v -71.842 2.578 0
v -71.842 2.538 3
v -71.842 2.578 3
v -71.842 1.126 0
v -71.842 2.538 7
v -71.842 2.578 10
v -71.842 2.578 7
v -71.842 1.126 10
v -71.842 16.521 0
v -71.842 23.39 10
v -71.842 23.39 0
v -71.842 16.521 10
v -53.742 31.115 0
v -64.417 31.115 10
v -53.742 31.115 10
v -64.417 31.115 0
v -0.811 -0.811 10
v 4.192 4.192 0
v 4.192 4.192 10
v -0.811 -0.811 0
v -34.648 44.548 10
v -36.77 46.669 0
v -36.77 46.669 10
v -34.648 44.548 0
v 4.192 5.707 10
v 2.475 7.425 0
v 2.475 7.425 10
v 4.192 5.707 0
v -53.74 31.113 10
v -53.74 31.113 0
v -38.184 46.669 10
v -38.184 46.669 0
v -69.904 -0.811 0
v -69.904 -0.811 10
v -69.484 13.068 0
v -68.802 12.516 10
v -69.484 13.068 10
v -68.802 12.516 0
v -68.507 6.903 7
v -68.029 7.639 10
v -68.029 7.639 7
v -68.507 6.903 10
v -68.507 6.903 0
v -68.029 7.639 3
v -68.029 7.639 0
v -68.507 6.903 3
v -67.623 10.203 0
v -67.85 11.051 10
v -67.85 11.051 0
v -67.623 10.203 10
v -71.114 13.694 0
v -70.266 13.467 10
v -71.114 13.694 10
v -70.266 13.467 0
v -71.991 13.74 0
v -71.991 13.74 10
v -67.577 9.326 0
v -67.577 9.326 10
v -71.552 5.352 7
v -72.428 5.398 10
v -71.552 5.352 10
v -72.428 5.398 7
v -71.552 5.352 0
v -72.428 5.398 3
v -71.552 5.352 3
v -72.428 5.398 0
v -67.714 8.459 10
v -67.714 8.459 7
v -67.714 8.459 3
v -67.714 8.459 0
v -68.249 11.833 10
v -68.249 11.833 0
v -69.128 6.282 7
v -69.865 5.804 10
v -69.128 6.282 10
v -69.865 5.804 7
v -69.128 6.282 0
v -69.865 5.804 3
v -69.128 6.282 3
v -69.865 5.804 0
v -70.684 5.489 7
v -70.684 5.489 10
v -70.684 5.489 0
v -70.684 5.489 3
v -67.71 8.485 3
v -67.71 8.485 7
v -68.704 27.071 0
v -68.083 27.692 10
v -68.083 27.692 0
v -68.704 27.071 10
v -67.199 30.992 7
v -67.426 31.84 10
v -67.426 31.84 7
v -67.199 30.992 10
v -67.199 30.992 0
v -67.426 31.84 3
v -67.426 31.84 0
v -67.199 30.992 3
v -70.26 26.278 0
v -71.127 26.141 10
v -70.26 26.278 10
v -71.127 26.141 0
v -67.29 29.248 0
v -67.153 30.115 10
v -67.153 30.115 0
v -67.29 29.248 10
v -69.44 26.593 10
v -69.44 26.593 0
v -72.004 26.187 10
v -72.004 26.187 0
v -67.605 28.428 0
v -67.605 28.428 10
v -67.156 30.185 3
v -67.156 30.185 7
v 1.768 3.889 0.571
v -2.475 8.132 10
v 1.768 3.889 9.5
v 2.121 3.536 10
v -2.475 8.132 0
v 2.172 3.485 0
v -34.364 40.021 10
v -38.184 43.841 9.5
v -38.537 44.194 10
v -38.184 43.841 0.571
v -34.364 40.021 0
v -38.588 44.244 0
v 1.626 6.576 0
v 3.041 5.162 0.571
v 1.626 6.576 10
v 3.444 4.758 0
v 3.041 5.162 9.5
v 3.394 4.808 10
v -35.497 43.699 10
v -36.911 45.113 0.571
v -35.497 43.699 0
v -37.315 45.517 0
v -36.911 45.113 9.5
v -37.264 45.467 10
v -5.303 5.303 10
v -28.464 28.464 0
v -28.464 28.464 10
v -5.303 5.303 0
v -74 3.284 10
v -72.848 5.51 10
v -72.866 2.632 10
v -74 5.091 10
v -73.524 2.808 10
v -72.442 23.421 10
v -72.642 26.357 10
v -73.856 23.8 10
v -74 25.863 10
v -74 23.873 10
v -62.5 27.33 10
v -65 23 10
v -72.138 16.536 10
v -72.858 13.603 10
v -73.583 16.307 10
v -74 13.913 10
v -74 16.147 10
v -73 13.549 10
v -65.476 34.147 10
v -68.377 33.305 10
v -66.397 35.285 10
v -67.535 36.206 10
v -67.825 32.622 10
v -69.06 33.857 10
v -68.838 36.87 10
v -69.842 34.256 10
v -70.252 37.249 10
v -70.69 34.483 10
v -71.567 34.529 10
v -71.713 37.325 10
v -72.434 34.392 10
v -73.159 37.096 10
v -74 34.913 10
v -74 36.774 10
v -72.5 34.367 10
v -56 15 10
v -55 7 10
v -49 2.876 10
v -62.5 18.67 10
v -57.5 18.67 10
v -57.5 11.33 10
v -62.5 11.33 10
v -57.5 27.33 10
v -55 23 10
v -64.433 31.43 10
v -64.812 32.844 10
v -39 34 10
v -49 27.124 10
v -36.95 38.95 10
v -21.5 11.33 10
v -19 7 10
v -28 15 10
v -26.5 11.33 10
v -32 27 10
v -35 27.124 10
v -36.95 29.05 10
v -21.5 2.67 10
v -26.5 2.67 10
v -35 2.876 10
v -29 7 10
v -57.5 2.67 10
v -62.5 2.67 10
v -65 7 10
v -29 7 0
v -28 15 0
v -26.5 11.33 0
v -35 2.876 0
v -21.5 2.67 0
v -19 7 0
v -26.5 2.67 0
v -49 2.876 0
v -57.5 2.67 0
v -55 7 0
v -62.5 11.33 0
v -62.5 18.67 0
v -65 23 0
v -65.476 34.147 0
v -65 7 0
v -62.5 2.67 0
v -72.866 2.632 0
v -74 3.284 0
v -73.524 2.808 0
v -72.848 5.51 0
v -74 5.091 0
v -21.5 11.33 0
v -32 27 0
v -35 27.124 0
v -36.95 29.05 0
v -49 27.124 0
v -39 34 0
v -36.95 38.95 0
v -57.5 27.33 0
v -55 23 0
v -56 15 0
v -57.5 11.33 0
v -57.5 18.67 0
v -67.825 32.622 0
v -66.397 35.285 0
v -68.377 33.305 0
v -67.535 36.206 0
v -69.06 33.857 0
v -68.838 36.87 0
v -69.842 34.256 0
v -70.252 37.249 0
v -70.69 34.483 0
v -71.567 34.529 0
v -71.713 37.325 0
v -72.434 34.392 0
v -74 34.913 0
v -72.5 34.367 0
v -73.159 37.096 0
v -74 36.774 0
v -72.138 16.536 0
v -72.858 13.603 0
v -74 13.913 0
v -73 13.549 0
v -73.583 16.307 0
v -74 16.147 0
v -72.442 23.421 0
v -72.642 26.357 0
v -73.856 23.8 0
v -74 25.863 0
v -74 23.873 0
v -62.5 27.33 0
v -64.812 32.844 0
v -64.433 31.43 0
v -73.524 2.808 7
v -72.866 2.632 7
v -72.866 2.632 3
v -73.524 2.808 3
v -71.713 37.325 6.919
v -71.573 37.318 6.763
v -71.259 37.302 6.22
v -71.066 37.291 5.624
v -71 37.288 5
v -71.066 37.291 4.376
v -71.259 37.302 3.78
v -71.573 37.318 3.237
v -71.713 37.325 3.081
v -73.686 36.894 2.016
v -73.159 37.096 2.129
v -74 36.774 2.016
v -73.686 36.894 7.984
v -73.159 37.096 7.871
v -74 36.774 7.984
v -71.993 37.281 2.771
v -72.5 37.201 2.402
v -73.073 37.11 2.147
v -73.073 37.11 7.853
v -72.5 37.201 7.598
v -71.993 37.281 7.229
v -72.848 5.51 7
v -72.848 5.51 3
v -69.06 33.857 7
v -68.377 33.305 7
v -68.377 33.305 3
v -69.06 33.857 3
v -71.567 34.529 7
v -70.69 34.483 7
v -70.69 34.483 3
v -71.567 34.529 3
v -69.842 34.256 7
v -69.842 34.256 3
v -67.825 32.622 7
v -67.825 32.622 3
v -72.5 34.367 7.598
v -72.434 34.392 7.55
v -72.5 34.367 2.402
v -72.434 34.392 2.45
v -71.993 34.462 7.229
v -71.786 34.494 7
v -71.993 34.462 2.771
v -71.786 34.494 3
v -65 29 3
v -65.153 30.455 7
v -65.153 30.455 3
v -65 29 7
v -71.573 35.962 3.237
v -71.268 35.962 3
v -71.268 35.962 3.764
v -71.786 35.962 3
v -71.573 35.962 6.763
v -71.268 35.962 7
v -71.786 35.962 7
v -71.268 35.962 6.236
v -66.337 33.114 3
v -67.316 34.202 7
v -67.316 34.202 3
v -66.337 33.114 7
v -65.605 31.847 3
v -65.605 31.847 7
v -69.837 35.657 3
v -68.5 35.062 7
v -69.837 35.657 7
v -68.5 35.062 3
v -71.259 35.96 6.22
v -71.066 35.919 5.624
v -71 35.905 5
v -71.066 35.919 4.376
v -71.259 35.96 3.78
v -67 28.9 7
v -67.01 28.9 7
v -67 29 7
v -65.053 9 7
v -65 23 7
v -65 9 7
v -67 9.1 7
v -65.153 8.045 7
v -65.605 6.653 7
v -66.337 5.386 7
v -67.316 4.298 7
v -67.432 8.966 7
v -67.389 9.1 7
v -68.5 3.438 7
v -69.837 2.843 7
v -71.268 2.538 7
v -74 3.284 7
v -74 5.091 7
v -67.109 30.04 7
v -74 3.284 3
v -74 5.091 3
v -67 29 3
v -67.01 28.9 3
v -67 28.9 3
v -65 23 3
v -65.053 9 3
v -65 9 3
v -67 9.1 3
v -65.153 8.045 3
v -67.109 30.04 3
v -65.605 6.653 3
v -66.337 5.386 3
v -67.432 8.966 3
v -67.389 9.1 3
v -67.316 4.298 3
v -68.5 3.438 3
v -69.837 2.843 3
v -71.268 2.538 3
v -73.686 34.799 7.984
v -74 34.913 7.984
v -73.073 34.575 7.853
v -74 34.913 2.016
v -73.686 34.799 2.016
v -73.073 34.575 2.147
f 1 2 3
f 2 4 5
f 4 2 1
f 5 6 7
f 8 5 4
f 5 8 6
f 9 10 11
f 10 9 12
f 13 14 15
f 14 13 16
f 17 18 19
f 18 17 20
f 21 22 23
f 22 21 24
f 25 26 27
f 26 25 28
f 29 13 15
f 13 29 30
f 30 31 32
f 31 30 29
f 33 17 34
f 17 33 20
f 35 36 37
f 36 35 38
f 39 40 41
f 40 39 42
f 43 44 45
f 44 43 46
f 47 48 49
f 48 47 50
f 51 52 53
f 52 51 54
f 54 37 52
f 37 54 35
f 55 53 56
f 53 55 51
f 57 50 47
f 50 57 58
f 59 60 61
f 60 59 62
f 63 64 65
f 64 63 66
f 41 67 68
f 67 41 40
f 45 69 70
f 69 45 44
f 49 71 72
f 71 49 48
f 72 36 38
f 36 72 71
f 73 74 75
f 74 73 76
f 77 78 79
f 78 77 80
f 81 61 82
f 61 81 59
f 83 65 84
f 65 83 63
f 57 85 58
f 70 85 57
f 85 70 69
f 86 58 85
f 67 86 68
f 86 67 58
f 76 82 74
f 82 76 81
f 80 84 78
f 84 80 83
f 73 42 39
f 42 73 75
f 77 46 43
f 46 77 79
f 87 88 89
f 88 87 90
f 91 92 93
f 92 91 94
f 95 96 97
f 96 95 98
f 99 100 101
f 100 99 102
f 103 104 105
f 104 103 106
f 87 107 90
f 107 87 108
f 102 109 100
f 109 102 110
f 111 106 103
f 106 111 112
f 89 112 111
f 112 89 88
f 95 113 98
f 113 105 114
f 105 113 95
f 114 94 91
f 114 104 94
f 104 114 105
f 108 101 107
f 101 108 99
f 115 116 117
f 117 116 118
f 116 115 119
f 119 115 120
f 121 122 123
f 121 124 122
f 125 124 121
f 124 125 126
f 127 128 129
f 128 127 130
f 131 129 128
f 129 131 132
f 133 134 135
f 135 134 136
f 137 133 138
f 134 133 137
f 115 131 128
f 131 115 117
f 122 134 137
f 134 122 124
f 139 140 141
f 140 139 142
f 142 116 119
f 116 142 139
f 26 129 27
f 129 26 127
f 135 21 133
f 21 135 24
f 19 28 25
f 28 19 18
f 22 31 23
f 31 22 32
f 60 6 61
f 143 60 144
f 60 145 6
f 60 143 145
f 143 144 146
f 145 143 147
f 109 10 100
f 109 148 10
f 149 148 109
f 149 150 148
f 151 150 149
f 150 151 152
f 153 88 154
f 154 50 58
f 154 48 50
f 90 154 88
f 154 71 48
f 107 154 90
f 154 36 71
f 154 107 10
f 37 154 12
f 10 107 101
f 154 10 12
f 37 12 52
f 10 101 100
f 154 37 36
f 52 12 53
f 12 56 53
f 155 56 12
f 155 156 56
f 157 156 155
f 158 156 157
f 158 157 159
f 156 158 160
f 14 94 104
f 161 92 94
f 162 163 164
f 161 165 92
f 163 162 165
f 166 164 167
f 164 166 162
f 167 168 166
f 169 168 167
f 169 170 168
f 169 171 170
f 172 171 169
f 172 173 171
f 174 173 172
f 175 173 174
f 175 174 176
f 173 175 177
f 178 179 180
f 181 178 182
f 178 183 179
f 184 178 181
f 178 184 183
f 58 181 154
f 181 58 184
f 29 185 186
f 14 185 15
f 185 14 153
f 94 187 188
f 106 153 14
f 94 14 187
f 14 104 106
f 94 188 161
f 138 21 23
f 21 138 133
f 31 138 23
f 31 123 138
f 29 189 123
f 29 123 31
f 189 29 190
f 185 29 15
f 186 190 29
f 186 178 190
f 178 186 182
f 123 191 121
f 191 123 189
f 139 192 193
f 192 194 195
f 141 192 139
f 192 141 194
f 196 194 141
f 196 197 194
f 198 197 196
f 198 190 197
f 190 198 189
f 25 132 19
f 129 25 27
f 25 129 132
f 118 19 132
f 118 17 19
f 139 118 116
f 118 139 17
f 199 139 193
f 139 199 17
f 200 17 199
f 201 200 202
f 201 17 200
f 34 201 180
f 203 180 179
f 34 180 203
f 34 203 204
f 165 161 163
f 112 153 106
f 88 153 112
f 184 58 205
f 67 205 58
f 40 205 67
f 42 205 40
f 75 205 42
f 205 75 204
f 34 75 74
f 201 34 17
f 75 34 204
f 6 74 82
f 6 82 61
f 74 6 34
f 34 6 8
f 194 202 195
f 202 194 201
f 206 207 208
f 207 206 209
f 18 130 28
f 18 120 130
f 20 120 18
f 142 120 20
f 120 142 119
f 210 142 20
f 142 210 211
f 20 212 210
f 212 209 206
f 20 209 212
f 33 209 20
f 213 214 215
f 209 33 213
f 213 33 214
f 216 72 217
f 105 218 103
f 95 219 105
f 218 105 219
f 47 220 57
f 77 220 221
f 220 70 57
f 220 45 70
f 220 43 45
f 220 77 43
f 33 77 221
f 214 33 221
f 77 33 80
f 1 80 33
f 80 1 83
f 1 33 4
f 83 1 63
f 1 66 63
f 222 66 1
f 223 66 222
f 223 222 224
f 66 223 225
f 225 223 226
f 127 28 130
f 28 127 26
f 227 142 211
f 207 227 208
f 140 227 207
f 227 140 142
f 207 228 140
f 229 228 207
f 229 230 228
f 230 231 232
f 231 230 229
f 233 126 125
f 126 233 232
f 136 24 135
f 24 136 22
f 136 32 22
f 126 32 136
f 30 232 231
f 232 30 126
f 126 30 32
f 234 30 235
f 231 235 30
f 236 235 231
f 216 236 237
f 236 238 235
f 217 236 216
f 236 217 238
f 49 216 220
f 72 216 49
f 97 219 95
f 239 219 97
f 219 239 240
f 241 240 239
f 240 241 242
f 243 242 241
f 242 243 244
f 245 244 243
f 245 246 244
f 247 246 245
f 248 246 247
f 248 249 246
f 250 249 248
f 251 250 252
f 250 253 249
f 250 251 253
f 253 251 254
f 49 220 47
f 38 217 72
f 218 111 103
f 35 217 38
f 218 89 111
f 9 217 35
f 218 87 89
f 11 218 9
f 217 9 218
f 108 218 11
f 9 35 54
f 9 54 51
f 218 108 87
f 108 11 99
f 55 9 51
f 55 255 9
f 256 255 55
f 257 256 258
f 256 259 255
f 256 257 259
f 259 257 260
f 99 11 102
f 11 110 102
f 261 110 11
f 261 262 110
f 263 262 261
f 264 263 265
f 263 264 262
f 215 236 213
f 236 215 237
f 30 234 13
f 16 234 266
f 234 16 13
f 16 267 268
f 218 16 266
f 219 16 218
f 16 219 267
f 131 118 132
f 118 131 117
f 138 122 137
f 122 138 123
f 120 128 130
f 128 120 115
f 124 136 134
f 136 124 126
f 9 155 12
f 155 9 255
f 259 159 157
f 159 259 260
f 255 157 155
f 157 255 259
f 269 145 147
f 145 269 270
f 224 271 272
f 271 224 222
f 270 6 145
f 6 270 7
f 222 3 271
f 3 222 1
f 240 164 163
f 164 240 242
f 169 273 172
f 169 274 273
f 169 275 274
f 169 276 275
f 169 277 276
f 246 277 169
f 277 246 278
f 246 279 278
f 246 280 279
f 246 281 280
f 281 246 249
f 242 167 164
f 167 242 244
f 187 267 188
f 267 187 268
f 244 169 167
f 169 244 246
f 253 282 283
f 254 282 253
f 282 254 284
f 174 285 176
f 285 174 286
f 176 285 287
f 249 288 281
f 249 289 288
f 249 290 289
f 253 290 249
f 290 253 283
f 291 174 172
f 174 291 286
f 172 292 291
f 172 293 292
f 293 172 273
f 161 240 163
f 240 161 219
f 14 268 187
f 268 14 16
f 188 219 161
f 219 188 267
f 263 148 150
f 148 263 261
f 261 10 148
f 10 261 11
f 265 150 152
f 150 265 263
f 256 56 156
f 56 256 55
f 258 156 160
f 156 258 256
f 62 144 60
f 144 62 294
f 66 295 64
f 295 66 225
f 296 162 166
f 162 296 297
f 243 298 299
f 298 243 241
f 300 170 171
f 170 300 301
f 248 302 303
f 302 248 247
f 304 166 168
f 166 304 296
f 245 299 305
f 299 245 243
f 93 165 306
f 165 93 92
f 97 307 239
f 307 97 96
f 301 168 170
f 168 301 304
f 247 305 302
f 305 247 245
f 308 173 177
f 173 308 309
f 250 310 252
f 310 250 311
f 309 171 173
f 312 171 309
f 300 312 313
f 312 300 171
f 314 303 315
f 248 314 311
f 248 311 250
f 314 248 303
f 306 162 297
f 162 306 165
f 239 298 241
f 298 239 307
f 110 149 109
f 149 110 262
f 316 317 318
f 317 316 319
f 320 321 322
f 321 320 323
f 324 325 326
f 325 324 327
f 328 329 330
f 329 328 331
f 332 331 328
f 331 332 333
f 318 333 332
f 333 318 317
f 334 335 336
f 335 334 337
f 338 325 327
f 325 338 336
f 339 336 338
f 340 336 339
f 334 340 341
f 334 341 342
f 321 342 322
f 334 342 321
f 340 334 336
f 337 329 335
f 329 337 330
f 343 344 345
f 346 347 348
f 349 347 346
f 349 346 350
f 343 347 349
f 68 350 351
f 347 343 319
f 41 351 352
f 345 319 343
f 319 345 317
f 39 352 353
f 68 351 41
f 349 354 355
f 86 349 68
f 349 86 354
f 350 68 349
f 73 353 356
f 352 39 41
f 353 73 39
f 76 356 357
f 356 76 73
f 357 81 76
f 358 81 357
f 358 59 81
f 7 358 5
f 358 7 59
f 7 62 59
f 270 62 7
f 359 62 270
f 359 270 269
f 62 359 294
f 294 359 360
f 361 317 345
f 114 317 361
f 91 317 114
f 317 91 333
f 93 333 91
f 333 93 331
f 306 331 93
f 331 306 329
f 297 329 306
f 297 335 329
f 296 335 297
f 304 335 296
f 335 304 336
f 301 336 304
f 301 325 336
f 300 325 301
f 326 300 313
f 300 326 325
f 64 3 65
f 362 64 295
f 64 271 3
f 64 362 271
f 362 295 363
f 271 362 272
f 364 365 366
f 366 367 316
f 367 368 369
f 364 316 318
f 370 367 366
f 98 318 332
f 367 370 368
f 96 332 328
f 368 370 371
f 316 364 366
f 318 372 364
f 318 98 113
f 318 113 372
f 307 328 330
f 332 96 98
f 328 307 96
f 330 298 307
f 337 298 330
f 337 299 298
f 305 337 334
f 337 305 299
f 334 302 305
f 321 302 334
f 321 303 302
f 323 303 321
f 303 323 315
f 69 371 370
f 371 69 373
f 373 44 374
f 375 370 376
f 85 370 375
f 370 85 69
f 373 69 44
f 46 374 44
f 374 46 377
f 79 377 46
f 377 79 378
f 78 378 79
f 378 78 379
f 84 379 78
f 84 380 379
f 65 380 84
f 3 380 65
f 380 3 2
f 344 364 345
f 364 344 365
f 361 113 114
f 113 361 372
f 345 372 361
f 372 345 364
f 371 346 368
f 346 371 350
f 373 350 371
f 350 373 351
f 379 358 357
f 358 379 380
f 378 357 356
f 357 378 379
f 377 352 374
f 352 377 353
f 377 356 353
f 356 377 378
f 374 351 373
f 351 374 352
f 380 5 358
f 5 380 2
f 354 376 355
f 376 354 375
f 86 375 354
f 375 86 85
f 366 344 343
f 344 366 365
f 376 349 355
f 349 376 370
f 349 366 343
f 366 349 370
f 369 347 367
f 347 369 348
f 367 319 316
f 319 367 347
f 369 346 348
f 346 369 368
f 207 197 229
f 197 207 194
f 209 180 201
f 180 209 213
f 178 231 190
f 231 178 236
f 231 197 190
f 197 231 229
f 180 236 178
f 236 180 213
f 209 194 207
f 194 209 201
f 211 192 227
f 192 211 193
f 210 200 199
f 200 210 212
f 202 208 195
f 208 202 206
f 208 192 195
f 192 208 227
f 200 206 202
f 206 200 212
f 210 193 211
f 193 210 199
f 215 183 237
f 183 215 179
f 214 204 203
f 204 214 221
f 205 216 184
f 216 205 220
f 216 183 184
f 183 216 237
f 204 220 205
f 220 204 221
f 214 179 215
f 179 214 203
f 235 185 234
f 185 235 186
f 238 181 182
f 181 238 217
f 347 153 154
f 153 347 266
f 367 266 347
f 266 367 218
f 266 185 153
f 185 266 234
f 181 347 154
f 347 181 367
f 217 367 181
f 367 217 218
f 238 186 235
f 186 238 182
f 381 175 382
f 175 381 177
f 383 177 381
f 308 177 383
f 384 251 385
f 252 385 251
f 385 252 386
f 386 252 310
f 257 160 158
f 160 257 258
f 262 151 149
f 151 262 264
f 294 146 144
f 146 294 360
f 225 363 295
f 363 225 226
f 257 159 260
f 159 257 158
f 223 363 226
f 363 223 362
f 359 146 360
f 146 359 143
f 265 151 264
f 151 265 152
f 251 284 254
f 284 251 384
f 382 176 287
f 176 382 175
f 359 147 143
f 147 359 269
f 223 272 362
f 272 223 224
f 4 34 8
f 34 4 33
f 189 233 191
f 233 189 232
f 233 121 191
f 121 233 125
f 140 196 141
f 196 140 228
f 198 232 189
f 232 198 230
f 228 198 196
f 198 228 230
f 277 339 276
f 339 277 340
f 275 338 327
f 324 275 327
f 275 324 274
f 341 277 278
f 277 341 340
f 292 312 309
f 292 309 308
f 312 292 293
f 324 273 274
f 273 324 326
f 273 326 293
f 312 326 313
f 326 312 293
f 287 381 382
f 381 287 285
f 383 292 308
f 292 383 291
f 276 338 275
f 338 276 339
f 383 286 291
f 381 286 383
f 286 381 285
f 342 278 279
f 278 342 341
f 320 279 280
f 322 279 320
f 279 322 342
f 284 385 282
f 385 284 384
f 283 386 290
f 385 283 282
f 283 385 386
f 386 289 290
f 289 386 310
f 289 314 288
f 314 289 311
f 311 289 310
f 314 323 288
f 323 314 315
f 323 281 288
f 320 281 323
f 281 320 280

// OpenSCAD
// PRUSA iteration3
// lcd-support-A
// GNU GPL v3
// Josef Průša <iam@josefprusa.cz> and contributors
// http://www.reprap.org/wiki/Prusa_Mendel
// http://prusamendel.org




module body(){

difference() {
    
    union(){
        translate( [ -55, -2 , 0 ] ) cube( [ 69 , 81 , 10 ] ); 
    }
    
    union (){

    // outer body shape
    translate( [ -69.6, 32, -1 ] ) rotate([0,0,45]) cube( [ 60 , 53 , 15 ] ); 
    translate( [ 13.7, 89.7, -1 ] ) rotate([0,0,135]) cube( [ 60 , 42 , 15 ] );
    translate( [ -19, -9, -1 ] ) cube( [ 60 , 9 , 15 ] );   
    translate( [ 7, -3, -1 ] ) cube( [ 60 , 68 , 16 ] );  
    translate( [ -16, 60, -1 ] ) cube( [ 60 , 50 , 15 ] );
    translate( [ -41, -45, -1 ] ) rotate([0,0,45]) cube( [ 60 , 80 , 13 ] );  
        
    // threaded rods opening
    translate( [ -44 , 57.5 , -1 ] ) cylinder( h = 17, r = 4.2, $fn=30);  
    translate( [ -29 , 71.9 , -1 ] ) cylinder( h = 17, r = 4.2, $fn=30);  

    // pcb cout out
    translate( [ 4 , 1.5 , -1 ] ) cube( [ 1.8 , 56.5 , 17 ] ); 
    translate( [ 0 , 7.5 , -1 ] ) cube( [ 5.8 , 44.5 , 17 ] ); 
    translate( [ 4.8 , 3.5 , -1 ] ) cube( [ 5.8 , 52.5 , 17 ] );

    translate( [ 8 , -5 , -1 ] ) rotate([0,0,45]) cube( [ 5 , 5 , 17 ] );
    translate( [ 8 , 58 , -1 ] ) rotate([0,0,45]) cube( [ 5 , 5 , 17 ] );
        
    }

    // pcb inserts
    translate( [ 4, 3 , 8 ] ) rotate([45,0,0]) cube( [ 1.8 , 5 , 5 ] ); 
    translate( [ 4, 56.5 , 8 ] ) rotate([45,0,0]) cube( [ 1.8 , 5 , 5 ] );     
    translate( [ 4, 3 , -5 ] ) rotate([45,0,0]) cube( [ 1.8 , 5 , 5 ] ); 
    translate( [ 4, 56.5 , -5 ] ) rotate([45,0,0]) cube( [ 1.8 , 5 , 5 ] );     
    
}

 
difference(){
    union(){
        translate( [ -44 , 57.5 , 0 ] ) cylinder( h = 10, r = 7, $fn=30); 
        translate( [ -29 , 71.9 , 0 ] ) cylinder( h = 10, r =7 , $fn=30); 
    }
        translate( [ -44 , 57.5 , -1 ] ) cylinder( h = 17, r = 4.2, $fn=30);
        translate( [ -29 , 71.9 , -1 ] ) cylinder( h = 17, r = 4.2, $fn=30);
}
}



module ziptie()
{
difference()
{
  union(){
    difference(){
        translate( [ -72 , 29 , 3 ] ) cylinder( h = 4, r = 7, $fn=30);
        translate( [ -72 , 29 , 3 ] ) cylinder( h = 4, r = 5, $fn=30);
    }
    difference(){
        translate( [ -72 , 9.5 , 3 ] ) cylinder( h = 4, r = 7, $fn=30);
        translate( [ -72 , 11 , 3 ] ) cylinder( h = 4, r = 5, $fn=30); 
    }
    }
    translate( [ -80 , 9.1 , 3 ] )  cube( [ 15 , 19.8 , 4 ] );  
    }
    
    translate( [ -67 , 9 , 3 ] )  cube( [ 2 , 20 , 4 ] ); 
}
    




difference() {
    
rotate([0,0,45]) body();

// lightening holes
translate( [ -42 , 15 , -1 ] ) cylinder( h = 15, r = 14, $fn=6);  
translate( [ -24 , 7 , -1 ] ) cylinder( h = 15, r = 5, $fn=6);  
translate( [ -60 , 7 , -1 ] ) cylinder( h = 15, r = 5, $fn=6);  
translate( [ -60 , 23 , -1 ] ) cylinder( h = 15, r = 5, $fn=6);  
    
// threaded rods corners
translate( [ -71 , 28.5 , -1 ] ) rotate([0,0,70]) cube( [ 5 , 10 , 15 ] );   
translate( [ -71 , 7.5 , -1 ] ) rotate([0,0,70]) cube( [ 5 , 10 , 15 ] );      
translate( [ -80 , 29, -1 ] ) rotate([0,0,-70]) cube( [ 5 , 10 , 15 ] );   
translate( [ -82 , 7.5 , -1 ] ) rotate([0,0,-70]) cube( [ 5 , 10 , 15 ] );      
translate( [ -86 , 0 , -1 ] ) cube( [ 12 , 50 , 15 ] );  
translate( [ -83 , -16 , -1 ] ) rotate([0,0,45]) cube( [ 20 , 20 , 15 ] );  
    
//translate( [-35, 27, -1] ) cube ( [12, 10, 15] );
translate( [-32, 34, -1] ) cylinder( h=15, r=7, $fn=8 );

ziptie();
// ziptie head cutout
translate( [ -74 , 38 , 5 ] ) rotate([90,0,0]) cylinder( h = 5, r = 3, $fn=30);  
    


}
